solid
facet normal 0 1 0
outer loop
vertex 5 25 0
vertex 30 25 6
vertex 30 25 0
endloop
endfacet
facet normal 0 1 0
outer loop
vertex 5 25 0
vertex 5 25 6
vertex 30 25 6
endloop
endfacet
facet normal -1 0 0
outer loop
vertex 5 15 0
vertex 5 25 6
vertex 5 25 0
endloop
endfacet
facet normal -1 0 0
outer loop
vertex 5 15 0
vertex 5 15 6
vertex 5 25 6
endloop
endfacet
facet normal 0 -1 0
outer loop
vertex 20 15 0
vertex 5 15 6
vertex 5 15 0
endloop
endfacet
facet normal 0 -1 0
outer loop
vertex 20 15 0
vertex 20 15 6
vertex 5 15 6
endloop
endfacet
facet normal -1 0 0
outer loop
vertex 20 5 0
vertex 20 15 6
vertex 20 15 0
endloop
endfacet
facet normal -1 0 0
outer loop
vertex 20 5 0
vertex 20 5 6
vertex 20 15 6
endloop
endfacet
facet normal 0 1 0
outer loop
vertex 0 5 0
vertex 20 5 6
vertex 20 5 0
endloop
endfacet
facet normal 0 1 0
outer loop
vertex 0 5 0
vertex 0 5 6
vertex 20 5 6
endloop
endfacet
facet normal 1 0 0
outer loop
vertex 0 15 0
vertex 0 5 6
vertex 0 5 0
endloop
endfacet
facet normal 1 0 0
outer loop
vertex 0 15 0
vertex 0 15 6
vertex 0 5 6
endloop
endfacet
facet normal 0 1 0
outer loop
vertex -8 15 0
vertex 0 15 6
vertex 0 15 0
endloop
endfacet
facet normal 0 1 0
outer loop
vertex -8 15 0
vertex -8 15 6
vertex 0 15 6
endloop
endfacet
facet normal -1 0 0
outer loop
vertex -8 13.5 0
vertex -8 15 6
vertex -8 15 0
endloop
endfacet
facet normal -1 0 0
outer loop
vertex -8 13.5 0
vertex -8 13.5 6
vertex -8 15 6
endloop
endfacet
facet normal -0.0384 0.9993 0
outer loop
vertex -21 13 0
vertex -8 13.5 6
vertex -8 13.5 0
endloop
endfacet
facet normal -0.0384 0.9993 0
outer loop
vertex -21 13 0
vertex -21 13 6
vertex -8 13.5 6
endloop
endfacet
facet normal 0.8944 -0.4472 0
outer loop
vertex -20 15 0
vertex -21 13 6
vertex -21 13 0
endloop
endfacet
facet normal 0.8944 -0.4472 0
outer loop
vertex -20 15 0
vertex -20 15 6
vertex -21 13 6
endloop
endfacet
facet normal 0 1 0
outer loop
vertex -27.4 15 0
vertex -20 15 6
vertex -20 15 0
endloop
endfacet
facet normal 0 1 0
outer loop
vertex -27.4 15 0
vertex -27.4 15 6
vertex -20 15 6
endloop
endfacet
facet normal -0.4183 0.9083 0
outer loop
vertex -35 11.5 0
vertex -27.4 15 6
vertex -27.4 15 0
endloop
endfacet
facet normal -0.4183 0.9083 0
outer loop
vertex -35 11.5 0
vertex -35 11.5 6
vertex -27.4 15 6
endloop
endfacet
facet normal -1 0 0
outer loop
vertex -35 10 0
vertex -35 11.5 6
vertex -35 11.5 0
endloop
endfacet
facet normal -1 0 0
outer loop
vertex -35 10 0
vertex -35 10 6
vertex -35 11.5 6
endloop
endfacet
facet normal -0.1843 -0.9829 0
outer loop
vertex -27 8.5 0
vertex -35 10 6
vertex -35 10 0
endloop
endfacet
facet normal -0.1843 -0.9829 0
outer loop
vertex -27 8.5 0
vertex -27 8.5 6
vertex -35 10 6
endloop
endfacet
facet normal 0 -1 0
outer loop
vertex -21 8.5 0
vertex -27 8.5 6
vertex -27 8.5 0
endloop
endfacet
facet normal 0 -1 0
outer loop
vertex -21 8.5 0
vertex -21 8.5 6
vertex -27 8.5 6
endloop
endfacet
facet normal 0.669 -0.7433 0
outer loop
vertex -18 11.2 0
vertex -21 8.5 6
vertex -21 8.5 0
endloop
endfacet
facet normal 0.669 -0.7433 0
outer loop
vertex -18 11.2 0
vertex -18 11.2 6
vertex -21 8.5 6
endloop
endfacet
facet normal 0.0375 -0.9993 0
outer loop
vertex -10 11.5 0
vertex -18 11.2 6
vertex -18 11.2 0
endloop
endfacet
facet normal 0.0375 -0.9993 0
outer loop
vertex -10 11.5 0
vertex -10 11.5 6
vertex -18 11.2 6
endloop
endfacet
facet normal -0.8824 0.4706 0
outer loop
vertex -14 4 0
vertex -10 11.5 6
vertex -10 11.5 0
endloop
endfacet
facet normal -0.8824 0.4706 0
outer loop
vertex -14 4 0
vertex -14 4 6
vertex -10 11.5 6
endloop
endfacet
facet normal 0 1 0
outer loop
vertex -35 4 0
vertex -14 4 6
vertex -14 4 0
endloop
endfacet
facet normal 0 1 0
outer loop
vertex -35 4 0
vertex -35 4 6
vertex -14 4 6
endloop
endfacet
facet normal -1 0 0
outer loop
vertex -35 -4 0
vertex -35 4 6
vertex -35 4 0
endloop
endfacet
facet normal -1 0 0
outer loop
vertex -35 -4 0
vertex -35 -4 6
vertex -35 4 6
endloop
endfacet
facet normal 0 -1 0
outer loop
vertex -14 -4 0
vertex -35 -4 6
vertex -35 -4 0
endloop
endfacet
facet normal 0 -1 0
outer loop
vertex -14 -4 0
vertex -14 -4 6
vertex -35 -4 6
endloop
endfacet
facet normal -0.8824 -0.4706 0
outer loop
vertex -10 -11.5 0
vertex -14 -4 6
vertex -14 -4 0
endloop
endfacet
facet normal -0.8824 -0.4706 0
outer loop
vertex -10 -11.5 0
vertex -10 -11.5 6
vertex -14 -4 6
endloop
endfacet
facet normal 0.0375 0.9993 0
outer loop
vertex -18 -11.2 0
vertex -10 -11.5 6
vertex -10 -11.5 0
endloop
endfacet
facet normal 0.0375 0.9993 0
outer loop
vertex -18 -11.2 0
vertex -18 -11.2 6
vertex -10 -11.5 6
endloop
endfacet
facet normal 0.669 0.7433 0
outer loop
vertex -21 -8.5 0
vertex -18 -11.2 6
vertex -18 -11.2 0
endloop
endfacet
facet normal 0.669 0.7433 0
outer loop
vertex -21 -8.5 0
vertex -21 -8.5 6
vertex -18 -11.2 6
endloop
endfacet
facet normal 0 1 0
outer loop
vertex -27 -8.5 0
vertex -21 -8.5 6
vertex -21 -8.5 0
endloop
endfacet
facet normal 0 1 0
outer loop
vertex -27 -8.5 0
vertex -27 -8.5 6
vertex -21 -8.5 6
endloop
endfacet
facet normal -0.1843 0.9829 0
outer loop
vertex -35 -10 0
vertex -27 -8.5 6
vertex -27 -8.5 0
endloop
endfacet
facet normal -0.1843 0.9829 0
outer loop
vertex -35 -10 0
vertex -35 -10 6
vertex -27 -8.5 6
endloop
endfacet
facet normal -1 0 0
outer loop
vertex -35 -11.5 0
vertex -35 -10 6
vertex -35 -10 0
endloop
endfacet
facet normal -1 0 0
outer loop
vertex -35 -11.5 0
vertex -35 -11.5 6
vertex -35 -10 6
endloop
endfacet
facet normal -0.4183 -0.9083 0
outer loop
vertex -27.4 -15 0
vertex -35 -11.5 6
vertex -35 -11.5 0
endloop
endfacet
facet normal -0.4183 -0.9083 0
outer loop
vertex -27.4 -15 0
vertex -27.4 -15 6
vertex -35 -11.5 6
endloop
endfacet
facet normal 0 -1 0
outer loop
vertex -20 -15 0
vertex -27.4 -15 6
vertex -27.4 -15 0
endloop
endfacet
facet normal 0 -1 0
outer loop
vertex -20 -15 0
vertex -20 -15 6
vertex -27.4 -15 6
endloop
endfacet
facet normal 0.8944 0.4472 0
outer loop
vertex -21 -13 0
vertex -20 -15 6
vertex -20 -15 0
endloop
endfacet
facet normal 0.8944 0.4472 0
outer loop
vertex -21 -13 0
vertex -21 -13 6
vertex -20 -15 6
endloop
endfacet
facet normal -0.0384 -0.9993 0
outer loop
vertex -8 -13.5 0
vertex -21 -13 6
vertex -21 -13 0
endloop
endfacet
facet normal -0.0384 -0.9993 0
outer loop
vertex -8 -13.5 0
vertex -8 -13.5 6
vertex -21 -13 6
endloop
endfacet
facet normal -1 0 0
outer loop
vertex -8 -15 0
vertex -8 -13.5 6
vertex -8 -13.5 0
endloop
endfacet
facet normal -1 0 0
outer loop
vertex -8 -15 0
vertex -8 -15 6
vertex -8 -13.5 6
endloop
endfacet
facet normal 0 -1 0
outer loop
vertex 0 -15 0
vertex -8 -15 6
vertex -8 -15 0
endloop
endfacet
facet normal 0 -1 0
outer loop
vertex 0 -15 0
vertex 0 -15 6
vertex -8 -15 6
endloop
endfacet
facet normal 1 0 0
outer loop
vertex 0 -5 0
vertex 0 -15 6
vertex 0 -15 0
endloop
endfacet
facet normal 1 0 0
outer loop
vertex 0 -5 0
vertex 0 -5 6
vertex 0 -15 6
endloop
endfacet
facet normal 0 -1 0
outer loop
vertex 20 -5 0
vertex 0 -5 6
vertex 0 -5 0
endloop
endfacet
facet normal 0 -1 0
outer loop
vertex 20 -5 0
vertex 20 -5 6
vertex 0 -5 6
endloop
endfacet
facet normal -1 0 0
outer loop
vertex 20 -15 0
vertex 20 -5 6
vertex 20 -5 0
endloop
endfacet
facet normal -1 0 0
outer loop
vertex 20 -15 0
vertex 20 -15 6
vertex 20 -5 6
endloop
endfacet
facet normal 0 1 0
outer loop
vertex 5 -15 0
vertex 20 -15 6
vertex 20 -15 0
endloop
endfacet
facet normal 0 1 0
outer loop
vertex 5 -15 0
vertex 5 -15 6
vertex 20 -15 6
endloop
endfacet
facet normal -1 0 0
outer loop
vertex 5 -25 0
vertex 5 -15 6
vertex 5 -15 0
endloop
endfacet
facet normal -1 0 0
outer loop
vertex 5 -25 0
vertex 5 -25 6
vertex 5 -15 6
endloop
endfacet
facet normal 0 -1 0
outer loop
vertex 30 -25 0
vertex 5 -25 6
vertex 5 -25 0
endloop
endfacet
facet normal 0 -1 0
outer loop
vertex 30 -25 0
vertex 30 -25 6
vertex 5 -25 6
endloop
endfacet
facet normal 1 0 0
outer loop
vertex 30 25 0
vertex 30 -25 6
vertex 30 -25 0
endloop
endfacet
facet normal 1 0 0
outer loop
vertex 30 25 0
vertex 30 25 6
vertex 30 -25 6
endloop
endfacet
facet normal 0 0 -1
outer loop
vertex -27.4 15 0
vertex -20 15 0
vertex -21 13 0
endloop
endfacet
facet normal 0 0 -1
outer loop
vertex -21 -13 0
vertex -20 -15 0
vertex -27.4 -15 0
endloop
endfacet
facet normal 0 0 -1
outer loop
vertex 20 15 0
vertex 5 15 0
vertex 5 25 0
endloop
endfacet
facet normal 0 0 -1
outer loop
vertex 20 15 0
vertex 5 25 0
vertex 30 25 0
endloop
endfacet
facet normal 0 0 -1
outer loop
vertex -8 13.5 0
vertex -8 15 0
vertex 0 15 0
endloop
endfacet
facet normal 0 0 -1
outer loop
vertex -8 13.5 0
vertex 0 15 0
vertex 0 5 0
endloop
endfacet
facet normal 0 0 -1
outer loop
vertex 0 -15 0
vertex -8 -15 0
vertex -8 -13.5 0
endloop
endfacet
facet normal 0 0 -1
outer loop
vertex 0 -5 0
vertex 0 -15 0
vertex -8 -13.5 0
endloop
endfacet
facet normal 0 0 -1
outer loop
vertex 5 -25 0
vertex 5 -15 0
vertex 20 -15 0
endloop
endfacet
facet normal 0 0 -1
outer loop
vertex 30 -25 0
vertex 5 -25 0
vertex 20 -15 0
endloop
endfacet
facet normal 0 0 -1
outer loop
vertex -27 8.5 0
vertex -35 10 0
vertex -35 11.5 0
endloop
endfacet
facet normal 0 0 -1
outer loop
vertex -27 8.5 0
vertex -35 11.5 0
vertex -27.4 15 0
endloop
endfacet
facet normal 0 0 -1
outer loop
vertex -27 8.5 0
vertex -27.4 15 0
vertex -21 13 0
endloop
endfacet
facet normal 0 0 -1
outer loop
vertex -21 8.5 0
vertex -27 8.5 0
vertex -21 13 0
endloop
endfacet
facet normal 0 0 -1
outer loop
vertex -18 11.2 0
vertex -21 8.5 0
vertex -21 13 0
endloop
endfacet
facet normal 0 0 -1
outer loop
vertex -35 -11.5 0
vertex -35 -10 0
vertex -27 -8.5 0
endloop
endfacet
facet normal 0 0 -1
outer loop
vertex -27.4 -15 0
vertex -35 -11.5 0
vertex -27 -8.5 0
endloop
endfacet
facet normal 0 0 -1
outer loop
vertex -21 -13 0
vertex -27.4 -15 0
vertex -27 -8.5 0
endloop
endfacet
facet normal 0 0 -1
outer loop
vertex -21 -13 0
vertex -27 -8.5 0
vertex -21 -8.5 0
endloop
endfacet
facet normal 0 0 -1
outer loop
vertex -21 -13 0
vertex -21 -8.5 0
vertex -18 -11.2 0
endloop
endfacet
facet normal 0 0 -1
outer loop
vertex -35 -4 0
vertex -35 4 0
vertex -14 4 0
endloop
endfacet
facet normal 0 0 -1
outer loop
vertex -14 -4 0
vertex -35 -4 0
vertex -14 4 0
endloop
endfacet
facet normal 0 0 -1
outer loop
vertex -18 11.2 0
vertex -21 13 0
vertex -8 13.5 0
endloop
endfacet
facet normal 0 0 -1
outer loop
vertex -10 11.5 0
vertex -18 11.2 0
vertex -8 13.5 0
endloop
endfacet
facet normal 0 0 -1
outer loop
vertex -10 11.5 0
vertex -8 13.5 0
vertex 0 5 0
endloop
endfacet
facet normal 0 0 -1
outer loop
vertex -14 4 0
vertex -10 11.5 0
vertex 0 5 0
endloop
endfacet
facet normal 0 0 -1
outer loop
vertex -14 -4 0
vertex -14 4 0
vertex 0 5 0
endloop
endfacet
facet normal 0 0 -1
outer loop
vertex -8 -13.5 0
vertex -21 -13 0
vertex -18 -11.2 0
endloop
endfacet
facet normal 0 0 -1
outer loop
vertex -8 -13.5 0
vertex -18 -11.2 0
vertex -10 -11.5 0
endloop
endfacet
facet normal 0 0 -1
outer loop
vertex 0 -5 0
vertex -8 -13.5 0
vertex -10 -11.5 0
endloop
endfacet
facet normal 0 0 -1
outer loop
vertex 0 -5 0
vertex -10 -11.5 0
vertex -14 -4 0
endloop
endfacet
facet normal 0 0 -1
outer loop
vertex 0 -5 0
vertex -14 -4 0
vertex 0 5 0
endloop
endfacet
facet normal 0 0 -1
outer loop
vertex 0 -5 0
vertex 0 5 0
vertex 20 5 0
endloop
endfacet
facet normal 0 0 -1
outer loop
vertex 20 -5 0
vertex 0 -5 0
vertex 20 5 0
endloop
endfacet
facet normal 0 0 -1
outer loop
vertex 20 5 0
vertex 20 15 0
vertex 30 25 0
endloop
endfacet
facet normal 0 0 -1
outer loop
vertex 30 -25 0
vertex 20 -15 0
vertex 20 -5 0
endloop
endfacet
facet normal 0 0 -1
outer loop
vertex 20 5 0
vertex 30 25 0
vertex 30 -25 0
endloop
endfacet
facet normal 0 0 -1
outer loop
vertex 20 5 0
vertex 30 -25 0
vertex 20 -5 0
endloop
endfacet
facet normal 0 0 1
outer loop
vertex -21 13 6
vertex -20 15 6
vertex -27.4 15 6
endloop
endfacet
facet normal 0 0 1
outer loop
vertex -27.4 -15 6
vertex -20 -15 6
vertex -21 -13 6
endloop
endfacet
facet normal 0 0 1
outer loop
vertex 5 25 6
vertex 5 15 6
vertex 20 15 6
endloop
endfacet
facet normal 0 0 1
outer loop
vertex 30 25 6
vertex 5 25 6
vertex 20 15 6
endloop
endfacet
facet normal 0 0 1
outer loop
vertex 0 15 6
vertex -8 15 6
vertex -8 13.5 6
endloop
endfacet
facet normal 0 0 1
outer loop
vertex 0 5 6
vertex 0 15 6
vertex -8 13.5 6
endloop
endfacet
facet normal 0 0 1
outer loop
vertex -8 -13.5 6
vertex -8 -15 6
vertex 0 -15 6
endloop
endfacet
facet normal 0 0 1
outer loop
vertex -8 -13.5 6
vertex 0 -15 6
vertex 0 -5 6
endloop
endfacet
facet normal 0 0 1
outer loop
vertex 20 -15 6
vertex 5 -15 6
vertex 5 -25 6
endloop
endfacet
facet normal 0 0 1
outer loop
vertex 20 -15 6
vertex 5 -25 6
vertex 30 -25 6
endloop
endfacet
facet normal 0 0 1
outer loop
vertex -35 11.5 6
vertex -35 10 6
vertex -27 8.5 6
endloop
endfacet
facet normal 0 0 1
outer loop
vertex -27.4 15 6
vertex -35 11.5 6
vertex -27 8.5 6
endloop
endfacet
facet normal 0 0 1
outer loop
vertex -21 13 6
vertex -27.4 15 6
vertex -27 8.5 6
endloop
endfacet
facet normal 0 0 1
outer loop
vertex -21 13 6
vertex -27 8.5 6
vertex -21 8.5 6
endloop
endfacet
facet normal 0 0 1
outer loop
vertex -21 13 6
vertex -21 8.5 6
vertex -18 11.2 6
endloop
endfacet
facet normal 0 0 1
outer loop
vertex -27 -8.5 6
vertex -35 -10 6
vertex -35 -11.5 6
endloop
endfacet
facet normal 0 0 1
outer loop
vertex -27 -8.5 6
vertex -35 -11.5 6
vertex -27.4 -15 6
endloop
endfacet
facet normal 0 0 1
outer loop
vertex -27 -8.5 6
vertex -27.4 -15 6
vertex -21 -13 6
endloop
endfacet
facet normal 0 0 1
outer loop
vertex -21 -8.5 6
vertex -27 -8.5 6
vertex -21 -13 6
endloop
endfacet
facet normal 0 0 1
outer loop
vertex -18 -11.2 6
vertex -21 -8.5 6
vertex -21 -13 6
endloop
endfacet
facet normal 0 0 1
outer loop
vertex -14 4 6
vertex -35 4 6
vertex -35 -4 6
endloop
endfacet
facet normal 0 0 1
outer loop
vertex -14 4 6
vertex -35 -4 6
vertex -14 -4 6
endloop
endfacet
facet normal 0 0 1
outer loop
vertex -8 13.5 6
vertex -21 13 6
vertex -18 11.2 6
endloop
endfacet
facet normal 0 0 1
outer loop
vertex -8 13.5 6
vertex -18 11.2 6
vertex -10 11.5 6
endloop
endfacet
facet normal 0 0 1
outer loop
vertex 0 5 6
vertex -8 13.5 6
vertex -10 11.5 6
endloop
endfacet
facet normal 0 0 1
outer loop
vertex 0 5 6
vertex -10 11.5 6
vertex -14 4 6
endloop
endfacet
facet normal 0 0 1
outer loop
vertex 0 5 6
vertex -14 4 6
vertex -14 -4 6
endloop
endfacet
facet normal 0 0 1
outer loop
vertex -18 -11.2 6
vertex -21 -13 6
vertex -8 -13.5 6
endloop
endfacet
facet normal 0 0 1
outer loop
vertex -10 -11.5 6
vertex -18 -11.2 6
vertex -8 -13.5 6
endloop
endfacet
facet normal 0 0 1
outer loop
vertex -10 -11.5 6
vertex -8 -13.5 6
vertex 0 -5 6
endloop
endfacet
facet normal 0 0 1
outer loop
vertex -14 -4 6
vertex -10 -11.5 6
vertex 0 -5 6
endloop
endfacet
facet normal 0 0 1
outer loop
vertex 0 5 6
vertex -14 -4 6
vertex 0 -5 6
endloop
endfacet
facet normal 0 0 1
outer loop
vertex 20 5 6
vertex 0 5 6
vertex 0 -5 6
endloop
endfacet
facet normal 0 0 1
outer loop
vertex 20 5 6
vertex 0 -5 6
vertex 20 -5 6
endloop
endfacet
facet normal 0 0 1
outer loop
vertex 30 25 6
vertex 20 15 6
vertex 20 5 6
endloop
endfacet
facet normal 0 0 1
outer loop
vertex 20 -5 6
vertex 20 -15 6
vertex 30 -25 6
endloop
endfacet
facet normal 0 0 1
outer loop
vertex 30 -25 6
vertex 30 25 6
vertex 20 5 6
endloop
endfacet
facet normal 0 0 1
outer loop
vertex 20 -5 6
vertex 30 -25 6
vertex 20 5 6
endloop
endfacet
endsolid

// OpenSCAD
$fn=60;

module half() {
translate([-35, 0, 0])
polygon(
    [[0, 15-3.5], [7.6, 15], [15, 15], [14, 13], [27, 15-1.5], [27, 15], [35, 15], 
     [35, 0], [0, 0], [0, 4], [21, 4], [25, 11.5], [17, 11.2], [14, 8.5], [8, 8.5], [0, 10]]);

square([30, 5]);
translate([20, 0, 0])
square([10, 20]);
translate([5, 15, 0])
square([25, 10]);
}

linear_extrude(height=6)
union(){
half();

mirror([0, 1, 0])
half();
}
